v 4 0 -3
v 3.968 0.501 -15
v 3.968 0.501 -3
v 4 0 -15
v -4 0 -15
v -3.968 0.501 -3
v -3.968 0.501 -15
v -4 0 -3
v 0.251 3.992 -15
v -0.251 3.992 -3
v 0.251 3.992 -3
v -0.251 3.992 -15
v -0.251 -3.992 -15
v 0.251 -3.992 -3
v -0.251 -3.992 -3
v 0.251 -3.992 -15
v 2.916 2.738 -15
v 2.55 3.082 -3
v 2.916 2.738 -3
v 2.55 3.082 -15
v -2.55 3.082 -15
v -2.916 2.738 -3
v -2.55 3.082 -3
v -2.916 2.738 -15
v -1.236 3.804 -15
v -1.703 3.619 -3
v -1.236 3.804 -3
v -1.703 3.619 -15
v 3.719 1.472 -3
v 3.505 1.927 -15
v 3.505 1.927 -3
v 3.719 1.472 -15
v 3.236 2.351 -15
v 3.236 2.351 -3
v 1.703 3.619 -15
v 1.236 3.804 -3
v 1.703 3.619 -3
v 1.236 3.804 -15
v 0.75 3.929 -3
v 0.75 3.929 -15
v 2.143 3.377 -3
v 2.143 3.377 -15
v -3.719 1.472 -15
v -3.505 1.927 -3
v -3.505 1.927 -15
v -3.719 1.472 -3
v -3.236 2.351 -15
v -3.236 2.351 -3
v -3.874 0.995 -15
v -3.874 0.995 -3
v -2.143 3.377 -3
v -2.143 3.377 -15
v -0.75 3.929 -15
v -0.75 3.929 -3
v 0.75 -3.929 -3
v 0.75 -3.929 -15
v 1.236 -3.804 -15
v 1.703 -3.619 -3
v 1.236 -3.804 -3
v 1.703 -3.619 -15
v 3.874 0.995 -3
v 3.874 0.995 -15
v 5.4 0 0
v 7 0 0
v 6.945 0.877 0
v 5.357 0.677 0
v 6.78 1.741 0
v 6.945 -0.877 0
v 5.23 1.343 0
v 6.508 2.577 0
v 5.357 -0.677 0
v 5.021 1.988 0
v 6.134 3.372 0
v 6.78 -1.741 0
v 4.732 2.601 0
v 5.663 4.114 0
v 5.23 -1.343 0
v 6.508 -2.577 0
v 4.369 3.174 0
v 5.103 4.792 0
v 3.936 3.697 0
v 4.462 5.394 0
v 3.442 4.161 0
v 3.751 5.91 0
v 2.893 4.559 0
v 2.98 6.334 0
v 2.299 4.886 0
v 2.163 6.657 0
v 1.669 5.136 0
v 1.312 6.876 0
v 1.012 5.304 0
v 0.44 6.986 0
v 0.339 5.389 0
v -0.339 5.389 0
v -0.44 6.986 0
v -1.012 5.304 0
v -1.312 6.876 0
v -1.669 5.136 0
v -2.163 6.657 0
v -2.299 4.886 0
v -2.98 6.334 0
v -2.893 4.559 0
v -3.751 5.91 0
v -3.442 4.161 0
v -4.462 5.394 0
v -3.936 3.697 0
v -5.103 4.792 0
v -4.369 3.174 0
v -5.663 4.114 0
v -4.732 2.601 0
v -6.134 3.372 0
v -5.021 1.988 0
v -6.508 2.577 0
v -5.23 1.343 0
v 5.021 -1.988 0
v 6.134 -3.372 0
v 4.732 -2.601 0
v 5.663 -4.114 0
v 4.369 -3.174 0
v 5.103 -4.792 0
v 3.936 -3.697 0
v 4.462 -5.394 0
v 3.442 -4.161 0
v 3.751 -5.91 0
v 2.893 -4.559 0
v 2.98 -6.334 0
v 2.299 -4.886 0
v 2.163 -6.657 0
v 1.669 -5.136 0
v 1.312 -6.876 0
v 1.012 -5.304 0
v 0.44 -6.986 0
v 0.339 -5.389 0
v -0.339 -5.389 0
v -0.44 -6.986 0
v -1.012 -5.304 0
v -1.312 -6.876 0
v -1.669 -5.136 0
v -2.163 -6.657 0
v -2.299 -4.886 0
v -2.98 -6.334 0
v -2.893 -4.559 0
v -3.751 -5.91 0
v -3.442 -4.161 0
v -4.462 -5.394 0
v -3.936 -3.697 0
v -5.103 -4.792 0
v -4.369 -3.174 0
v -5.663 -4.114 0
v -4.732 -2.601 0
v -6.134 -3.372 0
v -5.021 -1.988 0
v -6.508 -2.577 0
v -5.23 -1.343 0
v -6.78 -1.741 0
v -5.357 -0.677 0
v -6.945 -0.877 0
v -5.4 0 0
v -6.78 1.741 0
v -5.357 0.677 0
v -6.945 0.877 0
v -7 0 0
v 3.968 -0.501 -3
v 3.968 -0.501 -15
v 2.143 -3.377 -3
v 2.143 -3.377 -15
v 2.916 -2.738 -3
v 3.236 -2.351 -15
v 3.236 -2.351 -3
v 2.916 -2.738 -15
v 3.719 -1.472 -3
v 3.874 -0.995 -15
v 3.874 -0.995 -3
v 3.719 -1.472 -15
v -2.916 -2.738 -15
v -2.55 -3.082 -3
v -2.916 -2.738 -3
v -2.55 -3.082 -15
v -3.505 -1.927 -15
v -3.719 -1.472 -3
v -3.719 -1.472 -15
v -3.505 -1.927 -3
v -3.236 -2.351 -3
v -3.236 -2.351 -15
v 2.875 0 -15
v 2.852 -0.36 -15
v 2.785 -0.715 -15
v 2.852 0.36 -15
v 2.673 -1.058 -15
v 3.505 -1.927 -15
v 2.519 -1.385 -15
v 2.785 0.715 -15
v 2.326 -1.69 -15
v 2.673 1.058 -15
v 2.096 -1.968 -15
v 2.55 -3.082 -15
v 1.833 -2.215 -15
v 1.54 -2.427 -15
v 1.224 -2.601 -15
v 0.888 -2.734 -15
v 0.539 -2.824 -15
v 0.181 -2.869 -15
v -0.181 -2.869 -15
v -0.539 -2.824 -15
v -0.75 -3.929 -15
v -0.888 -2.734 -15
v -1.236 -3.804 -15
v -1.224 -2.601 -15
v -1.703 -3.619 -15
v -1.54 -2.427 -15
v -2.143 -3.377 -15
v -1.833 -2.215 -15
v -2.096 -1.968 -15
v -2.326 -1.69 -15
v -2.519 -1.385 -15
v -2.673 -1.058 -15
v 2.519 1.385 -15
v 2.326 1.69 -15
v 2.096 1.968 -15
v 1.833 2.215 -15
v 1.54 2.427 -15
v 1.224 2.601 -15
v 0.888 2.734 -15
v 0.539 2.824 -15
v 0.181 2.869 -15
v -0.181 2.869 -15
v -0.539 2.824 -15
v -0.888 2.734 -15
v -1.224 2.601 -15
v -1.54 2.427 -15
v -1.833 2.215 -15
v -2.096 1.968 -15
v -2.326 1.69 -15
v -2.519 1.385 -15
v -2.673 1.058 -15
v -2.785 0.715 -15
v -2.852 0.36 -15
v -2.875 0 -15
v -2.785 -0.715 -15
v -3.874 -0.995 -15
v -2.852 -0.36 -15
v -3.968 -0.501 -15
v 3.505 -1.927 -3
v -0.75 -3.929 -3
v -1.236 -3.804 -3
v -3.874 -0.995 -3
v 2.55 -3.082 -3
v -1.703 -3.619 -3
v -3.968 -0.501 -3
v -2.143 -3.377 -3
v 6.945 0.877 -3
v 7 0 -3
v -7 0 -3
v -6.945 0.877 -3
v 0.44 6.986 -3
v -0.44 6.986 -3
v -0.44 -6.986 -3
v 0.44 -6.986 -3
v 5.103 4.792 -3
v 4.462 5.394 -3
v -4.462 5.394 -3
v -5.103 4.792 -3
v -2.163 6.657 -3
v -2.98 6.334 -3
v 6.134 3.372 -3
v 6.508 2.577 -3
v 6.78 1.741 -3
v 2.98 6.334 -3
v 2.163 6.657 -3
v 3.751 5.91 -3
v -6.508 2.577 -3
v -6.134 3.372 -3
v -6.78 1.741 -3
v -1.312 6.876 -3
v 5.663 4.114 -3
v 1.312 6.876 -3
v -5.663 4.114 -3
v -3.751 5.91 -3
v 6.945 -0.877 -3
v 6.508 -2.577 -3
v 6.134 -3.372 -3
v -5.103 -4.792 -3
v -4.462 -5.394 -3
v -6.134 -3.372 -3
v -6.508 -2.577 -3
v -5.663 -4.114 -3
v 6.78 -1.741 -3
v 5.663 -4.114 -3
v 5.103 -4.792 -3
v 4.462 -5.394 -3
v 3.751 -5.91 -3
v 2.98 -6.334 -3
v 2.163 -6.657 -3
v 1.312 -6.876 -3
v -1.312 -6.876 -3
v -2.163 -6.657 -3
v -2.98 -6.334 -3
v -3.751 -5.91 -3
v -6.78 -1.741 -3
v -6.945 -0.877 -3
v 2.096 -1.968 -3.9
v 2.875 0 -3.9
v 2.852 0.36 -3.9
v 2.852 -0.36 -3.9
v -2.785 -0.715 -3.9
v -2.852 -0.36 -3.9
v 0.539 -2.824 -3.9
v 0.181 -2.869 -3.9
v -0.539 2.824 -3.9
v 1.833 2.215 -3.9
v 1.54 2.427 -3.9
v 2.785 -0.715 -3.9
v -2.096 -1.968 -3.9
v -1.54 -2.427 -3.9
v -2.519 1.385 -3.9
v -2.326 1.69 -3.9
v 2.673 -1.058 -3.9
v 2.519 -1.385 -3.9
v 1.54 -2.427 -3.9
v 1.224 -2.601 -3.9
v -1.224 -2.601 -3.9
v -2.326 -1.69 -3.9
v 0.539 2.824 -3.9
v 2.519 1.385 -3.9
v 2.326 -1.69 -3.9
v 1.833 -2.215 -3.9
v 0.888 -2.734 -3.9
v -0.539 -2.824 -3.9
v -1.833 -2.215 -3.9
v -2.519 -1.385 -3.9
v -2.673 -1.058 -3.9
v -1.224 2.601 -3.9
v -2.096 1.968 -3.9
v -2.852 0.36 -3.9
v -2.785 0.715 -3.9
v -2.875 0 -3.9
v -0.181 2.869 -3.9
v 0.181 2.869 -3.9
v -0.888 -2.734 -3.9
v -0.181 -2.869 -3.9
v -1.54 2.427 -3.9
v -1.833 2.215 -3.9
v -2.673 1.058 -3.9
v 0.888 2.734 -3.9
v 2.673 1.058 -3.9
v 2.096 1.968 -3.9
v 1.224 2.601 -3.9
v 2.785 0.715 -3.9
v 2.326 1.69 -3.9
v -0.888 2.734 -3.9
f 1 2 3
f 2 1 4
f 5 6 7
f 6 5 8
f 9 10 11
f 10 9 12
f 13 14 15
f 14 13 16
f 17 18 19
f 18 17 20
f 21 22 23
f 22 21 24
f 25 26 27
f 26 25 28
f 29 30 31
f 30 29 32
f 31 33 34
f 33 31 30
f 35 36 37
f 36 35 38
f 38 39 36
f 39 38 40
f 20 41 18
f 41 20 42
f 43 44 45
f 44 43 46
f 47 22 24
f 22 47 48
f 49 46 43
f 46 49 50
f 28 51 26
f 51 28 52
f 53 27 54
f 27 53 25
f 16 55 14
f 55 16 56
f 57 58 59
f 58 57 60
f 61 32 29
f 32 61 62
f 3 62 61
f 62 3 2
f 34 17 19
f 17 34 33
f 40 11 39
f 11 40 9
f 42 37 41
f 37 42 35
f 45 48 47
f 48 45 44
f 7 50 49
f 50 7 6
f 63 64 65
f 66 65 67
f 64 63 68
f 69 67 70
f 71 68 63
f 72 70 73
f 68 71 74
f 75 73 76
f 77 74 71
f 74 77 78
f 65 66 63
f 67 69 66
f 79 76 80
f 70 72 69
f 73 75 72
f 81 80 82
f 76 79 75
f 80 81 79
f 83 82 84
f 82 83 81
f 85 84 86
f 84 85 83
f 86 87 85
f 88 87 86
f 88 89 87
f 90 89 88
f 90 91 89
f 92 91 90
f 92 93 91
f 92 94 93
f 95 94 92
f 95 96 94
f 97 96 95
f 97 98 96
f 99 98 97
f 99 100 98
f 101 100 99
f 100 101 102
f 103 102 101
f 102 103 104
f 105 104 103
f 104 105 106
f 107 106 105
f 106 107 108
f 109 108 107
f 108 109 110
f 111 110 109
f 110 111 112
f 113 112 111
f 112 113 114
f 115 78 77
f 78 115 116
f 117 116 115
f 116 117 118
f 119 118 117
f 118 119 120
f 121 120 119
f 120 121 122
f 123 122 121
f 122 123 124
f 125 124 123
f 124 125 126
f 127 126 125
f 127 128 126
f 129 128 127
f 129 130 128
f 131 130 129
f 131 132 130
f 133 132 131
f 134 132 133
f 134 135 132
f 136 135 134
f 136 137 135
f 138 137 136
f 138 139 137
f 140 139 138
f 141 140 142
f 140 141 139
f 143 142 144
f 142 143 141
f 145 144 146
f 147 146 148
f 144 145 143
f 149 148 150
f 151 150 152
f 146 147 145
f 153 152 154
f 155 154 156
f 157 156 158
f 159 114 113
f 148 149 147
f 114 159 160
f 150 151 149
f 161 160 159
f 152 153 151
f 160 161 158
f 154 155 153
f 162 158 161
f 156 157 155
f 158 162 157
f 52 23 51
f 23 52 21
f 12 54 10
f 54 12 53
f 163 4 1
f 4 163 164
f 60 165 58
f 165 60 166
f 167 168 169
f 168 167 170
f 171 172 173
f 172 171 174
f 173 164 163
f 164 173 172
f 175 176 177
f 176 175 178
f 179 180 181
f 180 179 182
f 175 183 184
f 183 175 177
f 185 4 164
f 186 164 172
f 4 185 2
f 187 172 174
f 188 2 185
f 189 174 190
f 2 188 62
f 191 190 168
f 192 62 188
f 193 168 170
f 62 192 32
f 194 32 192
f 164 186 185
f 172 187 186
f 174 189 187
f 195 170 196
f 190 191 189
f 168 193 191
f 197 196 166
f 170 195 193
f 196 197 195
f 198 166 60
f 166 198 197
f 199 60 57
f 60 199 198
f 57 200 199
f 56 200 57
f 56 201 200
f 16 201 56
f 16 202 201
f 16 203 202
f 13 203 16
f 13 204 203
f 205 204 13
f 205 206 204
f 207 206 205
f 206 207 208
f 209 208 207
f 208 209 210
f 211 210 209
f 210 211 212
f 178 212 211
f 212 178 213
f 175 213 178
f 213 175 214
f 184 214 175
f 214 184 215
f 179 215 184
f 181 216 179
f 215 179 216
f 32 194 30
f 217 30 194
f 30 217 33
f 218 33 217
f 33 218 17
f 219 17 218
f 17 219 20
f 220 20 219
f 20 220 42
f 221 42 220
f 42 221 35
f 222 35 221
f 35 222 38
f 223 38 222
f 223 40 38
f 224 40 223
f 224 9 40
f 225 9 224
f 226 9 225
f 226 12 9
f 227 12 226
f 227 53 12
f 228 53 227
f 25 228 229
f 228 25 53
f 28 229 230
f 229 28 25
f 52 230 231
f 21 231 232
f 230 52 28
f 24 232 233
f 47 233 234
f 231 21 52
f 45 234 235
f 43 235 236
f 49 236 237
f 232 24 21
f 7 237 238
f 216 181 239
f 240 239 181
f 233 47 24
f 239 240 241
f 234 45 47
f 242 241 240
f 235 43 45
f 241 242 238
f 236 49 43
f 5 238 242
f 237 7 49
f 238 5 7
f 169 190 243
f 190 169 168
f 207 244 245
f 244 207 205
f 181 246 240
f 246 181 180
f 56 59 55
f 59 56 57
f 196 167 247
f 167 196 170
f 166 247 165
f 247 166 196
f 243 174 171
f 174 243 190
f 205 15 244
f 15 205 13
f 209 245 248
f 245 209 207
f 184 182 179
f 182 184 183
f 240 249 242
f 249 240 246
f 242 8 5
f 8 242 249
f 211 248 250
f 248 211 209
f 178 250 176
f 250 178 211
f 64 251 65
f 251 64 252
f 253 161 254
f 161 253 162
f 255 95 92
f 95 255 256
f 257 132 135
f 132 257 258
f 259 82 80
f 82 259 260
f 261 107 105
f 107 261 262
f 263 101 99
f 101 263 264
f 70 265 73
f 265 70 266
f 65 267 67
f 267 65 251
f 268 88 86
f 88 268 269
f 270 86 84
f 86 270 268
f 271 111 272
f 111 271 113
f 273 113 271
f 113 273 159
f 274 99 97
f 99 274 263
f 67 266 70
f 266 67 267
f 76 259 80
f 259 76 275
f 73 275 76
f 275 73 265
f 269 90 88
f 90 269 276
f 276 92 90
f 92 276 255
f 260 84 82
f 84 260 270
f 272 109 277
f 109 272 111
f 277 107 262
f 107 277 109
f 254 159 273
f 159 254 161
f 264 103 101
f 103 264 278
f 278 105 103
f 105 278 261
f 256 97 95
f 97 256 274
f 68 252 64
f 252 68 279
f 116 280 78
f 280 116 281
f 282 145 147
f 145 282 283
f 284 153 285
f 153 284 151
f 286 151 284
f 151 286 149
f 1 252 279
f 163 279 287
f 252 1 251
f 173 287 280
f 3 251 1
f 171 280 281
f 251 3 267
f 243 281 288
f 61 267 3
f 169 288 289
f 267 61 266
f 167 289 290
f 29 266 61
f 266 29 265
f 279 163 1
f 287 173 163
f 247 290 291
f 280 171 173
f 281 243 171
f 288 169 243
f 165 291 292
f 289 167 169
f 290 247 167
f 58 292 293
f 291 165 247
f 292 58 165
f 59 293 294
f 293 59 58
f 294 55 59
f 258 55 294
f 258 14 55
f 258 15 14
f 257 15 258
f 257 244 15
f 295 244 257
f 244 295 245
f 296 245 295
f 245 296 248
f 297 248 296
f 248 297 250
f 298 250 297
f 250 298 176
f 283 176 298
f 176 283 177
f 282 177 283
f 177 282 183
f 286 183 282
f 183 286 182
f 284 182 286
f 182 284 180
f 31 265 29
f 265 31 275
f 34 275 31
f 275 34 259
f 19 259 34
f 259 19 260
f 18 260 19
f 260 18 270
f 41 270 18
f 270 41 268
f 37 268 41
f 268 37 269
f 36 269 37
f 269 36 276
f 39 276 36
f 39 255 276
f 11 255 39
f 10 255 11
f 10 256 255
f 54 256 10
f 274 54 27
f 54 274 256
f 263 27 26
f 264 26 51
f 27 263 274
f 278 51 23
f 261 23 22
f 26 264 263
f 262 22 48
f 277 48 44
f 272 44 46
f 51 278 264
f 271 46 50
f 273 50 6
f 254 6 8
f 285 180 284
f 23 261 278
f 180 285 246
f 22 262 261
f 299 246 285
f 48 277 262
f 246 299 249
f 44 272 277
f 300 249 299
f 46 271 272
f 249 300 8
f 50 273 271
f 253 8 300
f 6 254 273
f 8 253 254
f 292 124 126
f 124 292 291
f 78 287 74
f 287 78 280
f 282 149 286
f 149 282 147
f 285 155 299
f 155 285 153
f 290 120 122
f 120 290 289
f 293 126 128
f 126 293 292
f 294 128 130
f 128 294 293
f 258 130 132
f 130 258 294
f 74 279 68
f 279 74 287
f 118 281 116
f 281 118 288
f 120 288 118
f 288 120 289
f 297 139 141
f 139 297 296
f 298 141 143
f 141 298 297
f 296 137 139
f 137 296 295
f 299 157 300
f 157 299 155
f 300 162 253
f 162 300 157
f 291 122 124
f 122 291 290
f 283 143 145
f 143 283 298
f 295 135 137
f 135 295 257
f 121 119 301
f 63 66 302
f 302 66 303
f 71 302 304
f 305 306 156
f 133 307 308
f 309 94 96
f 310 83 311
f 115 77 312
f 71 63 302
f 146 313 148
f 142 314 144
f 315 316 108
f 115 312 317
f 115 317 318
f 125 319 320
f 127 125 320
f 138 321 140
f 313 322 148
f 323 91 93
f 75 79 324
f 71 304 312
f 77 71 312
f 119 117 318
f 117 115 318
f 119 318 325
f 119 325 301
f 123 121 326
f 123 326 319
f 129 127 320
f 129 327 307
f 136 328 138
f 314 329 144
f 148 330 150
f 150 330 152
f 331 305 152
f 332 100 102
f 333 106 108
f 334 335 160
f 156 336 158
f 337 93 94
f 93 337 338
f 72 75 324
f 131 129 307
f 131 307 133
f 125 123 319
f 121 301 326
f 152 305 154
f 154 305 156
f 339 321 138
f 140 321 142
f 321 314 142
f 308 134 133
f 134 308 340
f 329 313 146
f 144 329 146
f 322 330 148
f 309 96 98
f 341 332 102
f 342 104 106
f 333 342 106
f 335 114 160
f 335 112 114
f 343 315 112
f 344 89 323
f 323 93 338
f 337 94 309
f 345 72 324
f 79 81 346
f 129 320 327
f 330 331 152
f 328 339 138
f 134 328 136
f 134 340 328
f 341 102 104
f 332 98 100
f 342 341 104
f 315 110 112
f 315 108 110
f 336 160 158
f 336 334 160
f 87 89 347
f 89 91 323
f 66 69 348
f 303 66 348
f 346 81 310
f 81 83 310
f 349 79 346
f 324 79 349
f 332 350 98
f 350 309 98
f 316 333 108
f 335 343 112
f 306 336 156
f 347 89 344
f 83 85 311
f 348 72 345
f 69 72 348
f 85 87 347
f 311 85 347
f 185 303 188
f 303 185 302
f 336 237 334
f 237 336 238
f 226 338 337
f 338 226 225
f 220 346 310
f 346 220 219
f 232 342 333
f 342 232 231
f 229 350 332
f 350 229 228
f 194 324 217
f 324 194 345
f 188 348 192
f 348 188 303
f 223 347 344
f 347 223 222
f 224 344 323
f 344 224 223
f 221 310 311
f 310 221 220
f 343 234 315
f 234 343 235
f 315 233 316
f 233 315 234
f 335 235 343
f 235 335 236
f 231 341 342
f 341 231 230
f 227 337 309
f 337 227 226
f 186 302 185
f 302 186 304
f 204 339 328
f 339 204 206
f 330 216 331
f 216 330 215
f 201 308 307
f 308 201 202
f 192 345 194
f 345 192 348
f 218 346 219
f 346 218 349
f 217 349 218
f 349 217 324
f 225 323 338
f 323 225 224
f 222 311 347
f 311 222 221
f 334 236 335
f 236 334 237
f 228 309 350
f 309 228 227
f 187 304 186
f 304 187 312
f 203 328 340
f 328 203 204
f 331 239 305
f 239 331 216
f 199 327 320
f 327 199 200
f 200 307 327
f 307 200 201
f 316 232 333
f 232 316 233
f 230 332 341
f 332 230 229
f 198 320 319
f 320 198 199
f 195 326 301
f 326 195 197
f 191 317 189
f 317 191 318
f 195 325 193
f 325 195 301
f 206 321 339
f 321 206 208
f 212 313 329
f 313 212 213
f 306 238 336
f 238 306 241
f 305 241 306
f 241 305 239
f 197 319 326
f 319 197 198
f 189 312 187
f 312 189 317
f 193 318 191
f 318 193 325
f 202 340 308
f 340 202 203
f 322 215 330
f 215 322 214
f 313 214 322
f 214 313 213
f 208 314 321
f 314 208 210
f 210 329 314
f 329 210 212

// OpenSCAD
$fn = 50;


difference() {
	union() {
		translate(v = [0, 0, -15.0000000000]) {
			cylinder(h = 15, r = 4.0000000000);
		}
		translate(v = [0, 0, -3.0000000000]) {
			cylinder(h = 3, r = 7.0000000000);
		}
	}
	union() {
		translate(v = [0, 0, 0]) {
			rotate(a = [0, 0, 0]) {
				difference() {
					union() {
						#translate(v = [0, 0, -15.0000000000]) {
							cylinder(h = 15, r = 2.6000000000);
						}
						#translate(v = [0, 0, -3.9000000000]) {
							cylinder(h = 3.9000000000, r1 = 2.8750000000, r2 = 5.4000000000);
						}
						#translate(v = [0, 0, -15.0000000000]) {
							cylinder(h = 15, r = 2.8750000000);
						}
						#translate(v = [0, 0, -15.0000000000]) {
							cylinder(h = 15, r = 2.6000000000);
						}
					}
					union();
				}
			}
		}
	}
}
